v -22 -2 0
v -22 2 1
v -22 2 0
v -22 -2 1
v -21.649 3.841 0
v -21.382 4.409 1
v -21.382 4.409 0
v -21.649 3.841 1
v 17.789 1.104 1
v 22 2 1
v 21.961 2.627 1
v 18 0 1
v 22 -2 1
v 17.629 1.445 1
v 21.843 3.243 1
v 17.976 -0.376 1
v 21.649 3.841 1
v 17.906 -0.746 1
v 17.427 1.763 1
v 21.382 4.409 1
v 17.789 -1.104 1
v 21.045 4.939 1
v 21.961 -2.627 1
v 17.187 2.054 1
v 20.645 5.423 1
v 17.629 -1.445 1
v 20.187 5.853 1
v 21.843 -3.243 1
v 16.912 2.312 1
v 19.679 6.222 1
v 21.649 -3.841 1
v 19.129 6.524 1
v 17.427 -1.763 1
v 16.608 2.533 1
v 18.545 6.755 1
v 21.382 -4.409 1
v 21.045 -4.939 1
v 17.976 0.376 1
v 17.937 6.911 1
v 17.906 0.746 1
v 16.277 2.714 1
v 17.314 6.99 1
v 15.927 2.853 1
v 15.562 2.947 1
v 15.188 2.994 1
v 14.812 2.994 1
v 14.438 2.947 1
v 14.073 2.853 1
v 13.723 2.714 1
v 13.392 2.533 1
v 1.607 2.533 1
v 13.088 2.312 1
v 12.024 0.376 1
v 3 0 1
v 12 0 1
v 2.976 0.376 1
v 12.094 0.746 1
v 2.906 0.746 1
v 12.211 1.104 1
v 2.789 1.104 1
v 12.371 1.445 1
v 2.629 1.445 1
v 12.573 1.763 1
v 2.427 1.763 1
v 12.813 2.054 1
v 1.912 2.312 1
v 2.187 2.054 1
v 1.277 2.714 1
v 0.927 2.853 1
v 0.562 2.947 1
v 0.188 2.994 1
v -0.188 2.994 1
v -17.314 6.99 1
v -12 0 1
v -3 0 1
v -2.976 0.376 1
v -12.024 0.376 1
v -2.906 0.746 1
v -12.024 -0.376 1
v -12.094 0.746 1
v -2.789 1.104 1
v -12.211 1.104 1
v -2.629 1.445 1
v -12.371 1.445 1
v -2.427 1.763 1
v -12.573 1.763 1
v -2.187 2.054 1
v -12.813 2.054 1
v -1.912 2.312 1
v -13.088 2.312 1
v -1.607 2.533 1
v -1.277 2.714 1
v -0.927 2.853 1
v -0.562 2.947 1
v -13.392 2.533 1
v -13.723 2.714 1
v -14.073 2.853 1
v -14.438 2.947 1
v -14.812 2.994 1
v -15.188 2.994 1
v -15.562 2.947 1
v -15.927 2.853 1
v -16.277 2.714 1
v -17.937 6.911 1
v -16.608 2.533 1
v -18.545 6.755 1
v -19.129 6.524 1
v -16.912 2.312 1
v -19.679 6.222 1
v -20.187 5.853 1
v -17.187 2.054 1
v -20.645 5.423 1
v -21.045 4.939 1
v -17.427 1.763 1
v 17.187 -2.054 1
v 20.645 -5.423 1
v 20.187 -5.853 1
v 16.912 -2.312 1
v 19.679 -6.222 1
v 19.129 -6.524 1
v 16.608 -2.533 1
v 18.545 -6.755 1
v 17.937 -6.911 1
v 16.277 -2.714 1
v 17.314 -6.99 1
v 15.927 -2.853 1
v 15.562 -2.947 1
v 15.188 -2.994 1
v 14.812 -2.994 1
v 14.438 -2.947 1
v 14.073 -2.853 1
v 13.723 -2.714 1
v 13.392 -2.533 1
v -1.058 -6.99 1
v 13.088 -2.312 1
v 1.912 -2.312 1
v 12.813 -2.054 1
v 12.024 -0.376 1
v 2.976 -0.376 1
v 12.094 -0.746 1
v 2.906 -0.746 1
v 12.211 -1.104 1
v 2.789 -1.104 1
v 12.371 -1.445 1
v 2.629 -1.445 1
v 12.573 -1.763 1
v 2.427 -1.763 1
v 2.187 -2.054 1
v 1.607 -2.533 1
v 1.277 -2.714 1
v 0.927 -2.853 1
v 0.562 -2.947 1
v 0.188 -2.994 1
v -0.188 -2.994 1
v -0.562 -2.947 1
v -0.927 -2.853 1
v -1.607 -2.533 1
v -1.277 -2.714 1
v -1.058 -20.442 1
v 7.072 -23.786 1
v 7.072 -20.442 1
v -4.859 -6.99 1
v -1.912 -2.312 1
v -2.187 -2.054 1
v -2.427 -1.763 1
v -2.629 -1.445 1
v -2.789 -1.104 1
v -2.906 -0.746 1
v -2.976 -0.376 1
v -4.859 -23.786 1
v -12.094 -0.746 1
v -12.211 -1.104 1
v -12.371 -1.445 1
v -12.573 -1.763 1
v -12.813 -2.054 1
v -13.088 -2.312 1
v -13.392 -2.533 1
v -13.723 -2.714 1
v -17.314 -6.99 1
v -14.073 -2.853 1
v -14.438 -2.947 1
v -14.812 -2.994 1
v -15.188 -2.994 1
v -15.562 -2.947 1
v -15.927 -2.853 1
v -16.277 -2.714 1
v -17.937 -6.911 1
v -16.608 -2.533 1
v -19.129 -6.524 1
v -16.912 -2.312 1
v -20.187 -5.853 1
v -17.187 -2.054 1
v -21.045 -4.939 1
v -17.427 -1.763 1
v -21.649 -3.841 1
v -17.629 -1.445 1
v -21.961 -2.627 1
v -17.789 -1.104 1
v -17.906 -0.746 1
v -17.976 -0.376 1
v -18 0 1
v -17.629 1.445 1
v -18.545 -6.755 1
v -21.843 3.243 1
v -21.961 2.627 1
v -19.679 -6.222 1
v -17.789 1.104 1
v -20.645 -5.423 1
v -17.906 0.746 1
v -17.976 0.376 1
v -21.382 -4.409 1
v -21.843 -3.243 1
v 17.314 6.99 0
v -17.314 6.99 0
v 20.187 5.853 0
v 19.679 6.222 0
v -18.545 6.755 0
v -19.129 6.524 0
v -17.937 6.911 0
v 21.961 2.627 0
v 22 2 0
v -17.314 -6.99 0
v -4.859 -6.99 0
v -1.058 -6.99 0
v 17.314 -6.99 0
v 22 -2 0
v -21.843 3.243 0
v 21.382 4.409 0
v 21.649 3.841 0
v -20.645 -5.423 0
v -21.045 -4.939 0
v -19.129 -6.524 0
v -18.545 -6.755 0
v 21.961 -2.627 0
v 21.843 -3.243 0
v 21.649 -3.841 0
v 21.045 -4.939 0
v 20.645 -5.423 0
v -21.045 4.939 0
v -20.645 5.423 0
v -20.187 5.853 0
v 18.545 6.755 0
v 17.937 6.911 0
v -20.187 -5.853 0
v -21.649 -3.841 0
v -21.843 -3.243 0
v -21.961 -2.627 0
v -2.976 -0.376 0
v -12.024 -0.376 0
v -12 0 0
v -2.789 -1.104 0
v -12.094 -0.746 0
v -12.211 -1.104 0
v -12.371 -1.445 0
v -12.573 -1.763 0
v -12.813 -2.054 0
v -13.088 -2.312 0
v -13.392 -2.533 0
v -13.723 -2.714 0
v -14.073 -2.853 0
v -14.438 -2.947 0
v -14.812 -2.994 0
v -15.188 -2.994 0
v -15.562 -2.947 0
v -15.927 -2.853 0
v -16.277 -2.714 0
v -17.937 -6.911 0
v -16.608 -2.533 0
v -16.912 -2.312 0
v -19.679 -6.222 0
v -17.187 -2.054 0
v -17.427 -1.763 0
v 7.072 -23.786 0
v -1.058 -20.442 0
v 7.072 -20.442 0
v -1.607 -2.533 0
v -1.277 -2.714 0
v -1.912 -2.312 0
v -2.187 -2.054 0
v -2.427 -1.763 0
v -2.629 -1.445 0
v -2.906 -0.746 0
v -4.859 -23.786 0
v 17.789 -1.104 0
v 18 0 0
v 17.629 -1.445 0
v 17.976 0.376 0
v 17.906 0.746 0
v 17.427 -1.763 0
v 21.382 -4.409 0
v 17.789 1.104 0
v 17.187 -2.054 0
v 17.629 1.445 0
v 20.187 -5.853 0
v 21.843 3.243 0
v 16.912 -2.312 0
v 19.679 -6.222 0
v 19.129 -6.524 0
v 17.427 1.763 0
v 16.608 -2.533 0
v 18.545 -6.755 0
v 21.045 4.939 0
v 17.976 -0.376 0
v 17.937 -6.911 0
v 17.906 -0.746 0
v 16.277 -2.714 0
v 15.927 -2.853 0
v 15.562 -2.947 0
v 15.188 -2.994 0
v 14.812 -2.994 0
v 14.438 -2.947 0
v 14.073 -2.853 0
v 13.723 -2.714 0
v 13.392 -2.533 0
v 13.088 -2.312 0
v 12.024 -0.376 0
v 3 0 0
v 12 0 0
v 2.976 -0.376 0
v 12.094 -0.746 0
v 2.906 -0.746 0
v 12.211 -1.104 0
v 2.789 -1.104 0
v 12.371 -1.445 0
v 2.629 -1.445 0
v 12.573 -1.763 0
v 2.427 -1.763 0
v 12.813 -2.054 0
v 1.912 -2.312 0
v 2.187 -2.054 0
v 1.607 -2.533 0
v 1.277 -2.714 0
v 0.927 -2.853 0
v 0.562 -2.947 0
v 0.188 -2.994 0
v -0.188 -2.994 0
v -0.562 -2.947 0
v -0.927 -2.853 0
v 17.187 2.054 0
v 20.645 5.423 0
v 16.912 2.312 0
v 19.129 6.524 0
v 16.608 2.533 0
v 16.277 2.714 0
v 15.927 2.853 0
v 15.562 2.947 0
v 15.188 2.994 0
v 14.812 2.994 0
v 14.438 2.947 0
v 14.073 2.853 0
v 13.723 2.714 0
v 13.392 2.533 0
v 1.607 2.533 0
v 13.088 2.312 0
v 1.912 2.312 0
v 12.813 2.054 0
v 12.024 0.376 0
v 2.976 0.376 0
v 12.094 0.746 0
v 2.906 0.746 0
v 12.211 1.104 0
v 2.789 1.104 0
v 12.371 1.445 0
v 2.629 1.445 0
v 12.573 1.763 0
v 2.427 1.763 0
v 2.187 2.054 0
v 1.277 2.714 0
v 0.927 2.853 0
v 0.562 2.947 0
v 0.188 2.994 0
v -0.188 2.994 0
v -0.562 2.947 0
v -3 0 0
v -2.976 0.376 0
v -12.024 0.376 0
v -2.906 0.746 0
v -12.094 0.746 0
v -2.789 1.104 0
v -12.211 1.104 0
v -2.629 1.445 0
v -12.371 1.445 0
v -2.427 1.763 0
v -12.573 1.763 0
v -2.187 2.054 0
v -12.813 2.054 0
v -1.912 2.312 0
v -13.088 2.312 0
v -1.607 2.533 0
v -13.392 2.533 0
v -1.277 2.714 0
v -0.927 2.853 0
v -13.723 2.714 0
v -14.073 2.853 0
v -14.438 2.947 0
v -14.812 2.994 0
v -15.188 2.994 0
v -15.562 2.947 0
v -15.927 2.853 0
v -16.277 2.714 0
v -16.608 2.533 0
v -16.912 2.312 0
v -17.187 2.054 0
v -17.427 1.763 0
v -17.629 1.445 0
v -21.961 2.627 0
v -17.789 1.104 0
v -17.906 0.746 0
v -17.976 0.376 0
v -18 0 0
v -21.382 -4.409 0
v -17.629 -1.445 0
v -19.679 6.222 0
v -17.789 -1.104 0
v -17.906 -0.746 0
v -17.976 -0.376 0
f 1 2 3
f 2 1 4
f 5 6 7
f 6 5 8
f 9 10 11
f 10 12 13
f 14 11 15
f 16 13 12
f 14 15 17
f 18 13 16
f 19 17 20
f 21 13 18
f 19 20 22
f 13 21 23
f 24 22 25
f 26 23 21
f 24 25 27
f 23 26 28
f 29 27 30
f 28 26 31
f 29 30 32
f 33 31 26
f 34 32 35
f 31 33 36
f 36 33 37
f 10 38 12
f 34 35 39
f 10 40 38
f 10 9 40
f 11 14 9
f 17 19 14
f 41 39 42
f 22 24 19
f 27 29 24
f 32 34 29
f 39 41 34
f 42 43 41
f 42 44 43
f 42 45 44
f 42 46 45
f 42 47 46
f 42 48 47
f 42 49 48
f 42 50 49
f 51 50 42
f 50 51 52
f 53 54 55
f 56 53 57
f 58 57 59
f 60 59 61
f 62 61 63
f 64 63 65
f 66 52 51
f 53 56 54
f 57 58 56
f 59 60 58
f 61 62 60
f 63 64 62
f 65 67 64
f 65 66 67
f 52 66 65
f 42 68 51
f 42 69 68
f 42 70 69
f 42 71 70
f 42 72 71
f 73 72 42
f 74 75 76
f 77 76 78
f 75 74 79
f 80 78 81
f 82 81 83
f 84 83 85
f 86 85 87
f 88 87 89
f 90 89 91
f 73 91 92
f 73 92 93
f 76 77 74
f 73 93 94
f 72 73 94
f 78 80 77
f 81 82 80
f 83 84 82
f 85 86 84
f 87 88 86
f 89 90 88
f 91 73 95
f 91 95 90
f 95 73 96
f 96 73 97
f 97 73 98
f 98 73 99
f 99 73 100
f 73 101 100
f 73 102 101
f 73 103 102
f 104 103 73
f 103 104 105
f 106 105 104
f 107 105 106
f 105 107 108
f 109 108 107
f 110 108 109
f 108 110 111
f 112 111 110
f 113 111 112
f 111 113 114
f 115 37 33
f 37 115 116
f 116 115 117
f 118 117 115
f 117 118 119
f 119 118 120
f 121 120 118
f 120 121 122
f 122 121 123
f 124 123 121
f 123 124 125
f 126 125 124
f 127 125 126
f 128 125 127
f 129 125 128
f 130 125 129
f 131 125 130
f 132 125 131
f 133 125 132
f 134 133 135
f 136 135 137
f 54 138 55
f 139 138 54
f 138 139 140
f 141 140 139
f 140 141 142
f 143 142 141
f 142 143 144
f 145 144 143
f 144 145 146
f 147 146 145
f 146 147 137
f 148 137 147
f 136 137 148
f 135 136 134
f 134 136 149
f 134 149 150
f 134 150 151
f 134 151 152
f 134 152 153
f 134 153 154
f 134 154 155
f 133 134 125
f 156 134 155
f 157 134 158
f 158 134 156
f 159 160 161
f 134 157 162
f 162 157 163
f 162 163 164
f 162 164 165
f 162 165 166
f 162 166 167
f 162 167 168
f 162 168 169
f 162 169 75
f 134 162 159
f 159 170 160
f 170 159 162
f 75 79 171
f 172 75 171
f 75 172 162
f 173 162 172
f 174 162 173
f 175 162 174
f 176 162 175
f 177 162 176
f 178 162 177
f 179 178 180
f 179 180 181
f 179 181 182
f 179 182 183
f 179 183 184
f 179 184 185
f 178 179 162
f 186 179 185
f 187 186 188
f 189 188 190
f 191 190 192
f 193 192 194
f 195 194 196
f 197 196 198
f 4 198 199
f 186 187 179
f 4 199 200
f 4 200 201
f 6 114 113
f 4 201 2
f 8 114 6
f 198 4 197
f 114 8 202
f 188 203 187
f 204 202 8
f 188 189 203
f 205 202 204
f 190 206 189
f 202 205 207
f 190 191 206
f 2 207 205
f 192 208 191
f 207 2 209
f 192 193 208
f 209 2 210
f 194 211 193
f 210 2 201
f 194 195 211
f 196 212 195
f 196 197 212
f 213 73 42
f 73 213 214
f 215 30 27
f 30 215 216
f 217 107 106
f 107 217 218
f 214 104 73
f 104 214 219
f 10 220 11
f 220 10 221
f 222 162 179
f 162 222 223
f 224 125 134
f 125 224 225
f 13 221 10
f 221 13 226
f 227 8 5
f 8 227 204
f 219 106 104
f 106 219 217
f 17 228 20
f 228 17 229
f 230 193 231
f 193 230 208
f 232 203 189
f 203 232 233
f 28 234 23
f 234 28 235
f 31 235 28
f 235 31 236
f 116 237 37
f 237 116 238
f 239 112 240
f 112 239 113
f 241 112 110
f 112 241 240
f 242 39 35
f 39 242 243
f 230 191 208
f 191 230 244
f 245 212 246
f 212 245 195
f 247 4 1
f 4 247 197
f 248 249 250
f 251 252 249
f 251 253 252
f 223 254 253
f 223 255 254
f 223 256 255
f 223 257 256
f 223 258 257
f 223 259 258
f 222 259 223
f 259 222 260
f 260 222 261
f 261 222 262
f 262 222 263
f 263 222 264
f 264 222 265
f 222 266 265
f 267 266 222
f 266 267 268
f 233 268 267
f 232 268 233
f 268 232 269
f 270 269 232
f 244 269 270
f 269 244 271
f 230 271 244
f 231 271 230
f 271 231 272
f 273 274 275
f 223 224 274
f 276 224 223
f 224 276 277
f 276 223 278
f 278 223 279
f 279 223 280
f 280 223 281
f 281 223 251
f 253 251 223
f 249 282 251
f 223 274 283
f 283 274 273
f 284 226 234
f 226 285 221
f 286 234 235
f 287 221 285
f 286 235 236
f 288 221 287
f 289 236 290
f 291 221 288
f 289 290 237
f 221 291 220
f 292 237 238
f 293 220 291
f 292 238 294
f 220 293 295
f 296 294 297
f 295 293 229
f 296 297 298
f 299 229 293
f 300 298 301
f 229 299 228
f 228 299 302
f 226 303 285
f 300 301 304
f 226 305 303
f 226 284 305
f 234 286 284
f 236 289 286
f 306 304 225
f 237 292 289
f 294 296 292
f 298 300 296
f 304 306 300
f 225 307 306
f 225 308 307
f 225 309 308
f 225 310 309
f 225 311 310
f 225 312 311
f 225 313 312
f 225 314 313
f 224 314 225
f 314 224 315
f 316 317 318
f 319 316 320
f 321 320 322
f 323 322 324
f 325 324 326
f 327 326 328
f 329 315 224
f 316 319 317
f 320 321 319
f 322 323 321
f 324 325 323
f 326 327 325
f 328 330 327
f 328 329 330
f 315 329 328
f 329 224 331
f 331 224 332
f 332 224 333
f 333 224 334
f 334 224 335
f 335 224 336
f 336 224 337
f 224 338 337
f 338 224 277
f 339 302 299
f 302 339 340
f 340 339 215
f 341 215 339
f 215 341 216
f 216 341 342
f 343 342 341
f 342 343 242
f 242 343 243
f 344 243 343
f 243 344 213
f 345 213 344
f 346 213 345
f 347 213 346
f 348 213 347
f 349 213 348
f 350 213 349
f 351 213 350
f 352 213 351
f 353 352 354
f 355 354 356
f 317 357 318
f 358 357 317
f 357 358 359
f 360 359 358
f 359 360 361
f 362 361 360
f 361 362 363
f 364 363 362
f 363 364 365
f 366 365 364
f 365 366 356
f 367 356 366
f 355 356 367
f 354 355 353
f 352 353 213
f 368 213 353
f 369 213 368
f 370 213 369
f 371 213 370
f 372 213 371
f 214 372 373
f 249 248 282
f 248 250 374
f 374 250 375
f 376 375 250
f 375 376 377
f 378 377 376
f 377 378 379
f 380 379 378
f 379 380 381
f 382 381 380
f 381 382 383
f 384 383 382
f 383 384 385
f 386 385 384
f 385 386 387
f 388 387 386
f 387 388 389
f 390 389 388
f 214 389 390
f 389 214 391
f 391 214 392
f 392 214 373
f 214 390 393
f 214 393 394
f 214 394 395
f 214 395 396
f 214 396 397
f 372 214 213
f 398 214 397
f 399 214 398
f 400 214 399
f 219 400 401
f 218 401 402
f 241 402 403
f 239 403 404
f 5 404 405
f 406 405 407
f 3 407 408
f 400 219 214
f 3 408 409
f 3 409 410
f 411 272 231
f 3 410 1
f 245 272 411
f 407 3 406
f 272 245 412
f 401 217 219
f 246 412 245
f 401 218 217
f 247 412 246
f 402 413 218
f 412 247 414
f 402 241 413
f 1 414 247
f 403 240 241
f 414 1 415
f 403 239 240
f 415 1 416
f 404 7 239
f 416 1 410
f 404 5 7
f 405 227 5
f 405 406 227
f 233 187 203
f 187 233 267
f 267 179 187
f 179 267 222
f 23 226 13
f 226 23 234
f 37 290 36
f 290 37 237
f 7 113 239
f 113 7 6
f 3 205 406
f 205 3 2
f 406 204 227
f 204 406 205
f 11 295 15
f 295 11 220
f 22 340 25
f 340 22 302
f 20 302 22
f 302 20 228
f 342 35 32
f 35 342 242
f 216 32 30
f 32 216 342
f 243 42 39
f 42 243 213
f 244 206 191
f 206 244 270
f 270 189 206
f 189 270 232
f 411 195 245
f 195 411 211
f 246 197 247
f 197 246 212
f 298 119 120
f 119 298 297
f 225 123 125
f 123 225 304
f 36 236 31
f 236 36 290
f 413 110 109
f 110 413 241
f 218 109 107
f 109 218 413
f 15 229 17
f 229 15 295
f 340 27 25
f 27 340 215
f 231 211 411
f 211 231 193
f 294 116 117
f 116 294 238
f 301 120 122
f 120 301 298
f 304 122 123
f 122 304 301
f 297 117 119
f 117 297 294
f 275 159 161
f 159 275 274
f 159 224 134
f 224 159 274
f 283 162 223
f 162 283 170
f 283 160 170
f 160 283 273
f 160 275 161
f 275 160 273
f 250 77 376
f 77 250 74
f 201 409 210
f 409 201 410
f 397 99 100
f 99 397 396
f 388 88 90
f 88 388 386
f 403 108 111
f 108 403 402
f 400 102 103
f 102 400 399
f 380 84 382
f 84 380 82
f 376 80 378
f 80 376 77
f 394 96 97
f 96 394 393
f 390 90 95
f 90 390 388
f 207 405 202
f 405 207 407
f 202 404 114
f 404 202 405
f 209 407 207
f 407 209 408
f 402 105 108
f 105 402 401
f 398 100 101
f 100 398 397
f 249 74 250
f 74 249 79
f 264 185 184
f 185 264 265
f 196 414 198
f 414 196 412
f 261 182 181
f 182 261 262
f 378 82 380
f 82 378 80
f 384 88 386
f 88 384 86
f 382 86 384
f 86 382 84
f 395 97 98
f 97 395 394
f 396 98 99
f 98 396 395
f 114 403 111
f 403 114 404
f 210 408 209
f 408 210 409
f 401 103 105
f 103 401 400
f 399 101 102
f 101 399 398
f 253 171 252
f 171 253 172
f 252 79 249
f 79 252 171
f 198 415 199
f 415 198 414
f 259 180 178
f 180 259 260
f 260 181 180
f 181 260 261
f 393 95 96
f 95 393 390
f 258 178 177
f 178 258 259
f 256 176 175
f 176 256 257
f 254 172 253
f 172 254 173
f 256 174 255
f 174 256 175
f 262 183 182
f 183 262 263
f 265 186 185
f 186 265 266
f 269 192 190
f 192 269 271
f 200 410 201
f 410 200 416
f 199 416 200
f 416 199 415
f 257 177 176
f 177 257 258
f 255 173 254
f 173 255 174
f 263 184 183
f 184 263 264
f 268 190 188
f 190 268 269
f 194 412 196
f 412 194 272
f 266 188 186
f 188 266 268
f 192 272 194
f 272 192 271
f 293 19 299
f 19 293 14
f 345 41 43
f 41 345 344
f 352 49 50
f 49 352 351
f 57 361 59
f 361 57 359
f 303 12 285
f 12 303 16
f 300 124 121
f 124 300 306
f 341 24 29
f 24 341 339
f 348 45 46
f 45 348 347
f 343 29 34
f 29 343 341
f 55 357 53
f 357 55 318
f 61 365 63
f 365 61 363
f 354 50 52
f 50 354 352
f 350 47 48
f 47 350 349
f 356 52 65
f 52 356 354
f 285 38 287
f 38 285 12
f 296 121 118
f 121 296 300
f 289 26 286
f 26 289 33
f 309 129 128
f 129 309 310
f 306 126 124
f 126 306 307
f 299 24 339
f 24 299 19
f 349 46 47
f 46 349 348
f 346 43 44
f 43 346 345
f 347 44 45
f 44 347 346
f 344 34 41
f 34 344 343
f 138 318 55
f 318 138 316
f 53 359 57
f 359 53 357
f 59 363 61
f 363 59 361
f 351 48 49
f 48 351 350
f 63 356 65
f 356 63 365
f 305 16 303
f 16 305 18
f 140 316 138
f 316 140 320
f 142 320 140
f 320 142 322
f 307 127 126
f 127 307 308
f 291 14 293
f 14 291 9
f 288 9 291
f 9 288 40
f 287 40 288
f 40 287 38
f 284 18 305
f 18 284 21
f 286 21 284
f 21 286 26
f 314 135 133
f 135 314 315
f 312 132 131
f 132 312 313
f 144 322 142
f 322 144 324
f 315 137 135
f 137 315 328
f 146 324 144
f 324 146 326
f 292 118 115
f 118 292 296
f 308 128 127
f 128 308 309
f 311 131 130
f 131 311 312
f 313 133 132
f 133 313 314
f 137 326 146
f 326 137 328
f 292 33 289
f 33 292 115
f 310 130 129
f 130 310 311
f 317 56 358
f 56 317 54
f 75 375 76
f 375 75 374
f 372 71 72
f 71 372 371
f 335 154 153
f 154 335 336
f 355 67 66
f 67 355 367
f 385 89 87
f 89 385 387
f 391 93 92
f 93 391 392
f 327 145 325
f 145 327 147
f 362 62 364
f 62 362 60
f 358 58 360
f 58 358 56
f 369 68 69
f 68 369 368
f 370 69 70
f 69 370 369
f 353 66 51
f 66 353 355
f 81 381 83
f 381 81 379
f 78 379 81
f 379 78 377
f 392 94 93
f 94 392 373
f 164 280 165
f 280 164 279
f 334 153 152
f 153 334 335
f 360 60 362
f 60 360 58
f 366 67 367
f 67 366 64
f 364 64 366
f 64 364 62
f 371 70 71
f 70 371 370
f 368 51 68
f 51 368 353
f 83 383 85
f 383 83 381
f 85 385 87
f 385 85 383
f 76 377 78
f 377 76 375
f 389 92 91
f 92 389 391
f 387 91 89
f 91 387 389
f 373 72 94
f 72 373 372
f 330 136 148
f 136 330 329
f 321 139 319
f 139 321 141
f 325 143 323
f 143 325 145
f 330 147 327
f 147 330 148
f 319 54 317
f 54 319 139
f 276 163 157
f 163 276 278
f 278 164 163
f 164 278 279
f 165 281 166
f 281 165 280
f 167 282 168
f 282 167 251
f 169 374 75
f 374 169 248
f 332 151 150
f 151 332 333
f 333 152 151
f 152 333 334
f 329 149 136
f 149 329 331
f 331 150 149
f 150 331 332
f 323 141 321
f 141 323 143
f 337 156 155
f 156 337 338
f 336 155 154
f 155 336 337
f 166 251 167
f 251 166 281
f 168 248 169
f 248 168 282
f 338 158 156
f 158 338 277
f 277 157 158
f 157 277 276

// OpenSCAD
$fn = 50;


difference() {
	union() {
		translate(v = [0, 0, 0]) {
			rotate(a = [0, 0, 0]) {
				hull() {
					translate(v = [-17.0000000000, 2.0000000000, 0]) {
						rotate(a = [0, 0, 0]) {
							translate(v = [0, 0, 0]) {
								rotate(a = [0, 0, 0]) {
									cylinder(h = 1, r = 5);
								}
							}
						}
					}
					translate(v = [17.0000000000, 2.0000000000, 0]) {
						rotate(a = [0, 0, 0]) {
							translate(v = [0, 0, 0]) {
								rotate(a = [0, 0, 0]) {
									cylinder(h = 1, r = 5);
								}
							}
						}
					}
					translate(v = [-17.0000000000, -2.0000000000, 0]) {
						rotate(a = [0, 0, 0]) {
							translate(v = [0, 0, 0]) {
								rotate(a = [0, 0, 0]) {
									cylinder(h = 1, r = 5);
								}
							}
						}
					}
					translate(v = [17.0000000000, -2.0000000000, 0]) {
						rotate(a = [0, 0, 0]) {
							translate(v = [0, 0, 0]) {
								rotate(a = [0, 0, 0]) {
									cylinder(h = 1, r = 5);
								}
							}
						}
					}
				}
			}
		}
		translate(v = [0, -5, 0]) {
			rotate(a = [0, 0, 0]) {
				linear_extrude(height = 1) {
					text(font = "DejaVu Sans Mono:style=Bold", halign = "center", size = 19.0000000000, text = "L", valign = "top");
				}
			}
		}
	}
	union() {
		translate(v = [-15.0000000000, 0.0000000000, -125.0000000000]) {
			rotate(a = [0, 0, 0]) {
				cylinder(h = 250, r = 3.0000000000);
			}
		}
		translate(v = [15.0000000000, 0.0000000000, -125.0000000000]) {
			rotate(a = [0, 0, 0]) {
				cylinder(h = 250, r = 3.0000000000);
			}
		}
		translate(v = [15.0000000000, 0.0000000000, -125.0000000000]) {
			rotate(a = [0, 0, 0]) {
				cylinder(h = 250, r = 3.0000000000);
			}
		}
		translate(v = [0, 0, -125.0000000000]) {
			rotate(a = [0, 0, 0]) {
				cylinder(h = 250, r = 3.0000000000);
			}
		}
	}
}
